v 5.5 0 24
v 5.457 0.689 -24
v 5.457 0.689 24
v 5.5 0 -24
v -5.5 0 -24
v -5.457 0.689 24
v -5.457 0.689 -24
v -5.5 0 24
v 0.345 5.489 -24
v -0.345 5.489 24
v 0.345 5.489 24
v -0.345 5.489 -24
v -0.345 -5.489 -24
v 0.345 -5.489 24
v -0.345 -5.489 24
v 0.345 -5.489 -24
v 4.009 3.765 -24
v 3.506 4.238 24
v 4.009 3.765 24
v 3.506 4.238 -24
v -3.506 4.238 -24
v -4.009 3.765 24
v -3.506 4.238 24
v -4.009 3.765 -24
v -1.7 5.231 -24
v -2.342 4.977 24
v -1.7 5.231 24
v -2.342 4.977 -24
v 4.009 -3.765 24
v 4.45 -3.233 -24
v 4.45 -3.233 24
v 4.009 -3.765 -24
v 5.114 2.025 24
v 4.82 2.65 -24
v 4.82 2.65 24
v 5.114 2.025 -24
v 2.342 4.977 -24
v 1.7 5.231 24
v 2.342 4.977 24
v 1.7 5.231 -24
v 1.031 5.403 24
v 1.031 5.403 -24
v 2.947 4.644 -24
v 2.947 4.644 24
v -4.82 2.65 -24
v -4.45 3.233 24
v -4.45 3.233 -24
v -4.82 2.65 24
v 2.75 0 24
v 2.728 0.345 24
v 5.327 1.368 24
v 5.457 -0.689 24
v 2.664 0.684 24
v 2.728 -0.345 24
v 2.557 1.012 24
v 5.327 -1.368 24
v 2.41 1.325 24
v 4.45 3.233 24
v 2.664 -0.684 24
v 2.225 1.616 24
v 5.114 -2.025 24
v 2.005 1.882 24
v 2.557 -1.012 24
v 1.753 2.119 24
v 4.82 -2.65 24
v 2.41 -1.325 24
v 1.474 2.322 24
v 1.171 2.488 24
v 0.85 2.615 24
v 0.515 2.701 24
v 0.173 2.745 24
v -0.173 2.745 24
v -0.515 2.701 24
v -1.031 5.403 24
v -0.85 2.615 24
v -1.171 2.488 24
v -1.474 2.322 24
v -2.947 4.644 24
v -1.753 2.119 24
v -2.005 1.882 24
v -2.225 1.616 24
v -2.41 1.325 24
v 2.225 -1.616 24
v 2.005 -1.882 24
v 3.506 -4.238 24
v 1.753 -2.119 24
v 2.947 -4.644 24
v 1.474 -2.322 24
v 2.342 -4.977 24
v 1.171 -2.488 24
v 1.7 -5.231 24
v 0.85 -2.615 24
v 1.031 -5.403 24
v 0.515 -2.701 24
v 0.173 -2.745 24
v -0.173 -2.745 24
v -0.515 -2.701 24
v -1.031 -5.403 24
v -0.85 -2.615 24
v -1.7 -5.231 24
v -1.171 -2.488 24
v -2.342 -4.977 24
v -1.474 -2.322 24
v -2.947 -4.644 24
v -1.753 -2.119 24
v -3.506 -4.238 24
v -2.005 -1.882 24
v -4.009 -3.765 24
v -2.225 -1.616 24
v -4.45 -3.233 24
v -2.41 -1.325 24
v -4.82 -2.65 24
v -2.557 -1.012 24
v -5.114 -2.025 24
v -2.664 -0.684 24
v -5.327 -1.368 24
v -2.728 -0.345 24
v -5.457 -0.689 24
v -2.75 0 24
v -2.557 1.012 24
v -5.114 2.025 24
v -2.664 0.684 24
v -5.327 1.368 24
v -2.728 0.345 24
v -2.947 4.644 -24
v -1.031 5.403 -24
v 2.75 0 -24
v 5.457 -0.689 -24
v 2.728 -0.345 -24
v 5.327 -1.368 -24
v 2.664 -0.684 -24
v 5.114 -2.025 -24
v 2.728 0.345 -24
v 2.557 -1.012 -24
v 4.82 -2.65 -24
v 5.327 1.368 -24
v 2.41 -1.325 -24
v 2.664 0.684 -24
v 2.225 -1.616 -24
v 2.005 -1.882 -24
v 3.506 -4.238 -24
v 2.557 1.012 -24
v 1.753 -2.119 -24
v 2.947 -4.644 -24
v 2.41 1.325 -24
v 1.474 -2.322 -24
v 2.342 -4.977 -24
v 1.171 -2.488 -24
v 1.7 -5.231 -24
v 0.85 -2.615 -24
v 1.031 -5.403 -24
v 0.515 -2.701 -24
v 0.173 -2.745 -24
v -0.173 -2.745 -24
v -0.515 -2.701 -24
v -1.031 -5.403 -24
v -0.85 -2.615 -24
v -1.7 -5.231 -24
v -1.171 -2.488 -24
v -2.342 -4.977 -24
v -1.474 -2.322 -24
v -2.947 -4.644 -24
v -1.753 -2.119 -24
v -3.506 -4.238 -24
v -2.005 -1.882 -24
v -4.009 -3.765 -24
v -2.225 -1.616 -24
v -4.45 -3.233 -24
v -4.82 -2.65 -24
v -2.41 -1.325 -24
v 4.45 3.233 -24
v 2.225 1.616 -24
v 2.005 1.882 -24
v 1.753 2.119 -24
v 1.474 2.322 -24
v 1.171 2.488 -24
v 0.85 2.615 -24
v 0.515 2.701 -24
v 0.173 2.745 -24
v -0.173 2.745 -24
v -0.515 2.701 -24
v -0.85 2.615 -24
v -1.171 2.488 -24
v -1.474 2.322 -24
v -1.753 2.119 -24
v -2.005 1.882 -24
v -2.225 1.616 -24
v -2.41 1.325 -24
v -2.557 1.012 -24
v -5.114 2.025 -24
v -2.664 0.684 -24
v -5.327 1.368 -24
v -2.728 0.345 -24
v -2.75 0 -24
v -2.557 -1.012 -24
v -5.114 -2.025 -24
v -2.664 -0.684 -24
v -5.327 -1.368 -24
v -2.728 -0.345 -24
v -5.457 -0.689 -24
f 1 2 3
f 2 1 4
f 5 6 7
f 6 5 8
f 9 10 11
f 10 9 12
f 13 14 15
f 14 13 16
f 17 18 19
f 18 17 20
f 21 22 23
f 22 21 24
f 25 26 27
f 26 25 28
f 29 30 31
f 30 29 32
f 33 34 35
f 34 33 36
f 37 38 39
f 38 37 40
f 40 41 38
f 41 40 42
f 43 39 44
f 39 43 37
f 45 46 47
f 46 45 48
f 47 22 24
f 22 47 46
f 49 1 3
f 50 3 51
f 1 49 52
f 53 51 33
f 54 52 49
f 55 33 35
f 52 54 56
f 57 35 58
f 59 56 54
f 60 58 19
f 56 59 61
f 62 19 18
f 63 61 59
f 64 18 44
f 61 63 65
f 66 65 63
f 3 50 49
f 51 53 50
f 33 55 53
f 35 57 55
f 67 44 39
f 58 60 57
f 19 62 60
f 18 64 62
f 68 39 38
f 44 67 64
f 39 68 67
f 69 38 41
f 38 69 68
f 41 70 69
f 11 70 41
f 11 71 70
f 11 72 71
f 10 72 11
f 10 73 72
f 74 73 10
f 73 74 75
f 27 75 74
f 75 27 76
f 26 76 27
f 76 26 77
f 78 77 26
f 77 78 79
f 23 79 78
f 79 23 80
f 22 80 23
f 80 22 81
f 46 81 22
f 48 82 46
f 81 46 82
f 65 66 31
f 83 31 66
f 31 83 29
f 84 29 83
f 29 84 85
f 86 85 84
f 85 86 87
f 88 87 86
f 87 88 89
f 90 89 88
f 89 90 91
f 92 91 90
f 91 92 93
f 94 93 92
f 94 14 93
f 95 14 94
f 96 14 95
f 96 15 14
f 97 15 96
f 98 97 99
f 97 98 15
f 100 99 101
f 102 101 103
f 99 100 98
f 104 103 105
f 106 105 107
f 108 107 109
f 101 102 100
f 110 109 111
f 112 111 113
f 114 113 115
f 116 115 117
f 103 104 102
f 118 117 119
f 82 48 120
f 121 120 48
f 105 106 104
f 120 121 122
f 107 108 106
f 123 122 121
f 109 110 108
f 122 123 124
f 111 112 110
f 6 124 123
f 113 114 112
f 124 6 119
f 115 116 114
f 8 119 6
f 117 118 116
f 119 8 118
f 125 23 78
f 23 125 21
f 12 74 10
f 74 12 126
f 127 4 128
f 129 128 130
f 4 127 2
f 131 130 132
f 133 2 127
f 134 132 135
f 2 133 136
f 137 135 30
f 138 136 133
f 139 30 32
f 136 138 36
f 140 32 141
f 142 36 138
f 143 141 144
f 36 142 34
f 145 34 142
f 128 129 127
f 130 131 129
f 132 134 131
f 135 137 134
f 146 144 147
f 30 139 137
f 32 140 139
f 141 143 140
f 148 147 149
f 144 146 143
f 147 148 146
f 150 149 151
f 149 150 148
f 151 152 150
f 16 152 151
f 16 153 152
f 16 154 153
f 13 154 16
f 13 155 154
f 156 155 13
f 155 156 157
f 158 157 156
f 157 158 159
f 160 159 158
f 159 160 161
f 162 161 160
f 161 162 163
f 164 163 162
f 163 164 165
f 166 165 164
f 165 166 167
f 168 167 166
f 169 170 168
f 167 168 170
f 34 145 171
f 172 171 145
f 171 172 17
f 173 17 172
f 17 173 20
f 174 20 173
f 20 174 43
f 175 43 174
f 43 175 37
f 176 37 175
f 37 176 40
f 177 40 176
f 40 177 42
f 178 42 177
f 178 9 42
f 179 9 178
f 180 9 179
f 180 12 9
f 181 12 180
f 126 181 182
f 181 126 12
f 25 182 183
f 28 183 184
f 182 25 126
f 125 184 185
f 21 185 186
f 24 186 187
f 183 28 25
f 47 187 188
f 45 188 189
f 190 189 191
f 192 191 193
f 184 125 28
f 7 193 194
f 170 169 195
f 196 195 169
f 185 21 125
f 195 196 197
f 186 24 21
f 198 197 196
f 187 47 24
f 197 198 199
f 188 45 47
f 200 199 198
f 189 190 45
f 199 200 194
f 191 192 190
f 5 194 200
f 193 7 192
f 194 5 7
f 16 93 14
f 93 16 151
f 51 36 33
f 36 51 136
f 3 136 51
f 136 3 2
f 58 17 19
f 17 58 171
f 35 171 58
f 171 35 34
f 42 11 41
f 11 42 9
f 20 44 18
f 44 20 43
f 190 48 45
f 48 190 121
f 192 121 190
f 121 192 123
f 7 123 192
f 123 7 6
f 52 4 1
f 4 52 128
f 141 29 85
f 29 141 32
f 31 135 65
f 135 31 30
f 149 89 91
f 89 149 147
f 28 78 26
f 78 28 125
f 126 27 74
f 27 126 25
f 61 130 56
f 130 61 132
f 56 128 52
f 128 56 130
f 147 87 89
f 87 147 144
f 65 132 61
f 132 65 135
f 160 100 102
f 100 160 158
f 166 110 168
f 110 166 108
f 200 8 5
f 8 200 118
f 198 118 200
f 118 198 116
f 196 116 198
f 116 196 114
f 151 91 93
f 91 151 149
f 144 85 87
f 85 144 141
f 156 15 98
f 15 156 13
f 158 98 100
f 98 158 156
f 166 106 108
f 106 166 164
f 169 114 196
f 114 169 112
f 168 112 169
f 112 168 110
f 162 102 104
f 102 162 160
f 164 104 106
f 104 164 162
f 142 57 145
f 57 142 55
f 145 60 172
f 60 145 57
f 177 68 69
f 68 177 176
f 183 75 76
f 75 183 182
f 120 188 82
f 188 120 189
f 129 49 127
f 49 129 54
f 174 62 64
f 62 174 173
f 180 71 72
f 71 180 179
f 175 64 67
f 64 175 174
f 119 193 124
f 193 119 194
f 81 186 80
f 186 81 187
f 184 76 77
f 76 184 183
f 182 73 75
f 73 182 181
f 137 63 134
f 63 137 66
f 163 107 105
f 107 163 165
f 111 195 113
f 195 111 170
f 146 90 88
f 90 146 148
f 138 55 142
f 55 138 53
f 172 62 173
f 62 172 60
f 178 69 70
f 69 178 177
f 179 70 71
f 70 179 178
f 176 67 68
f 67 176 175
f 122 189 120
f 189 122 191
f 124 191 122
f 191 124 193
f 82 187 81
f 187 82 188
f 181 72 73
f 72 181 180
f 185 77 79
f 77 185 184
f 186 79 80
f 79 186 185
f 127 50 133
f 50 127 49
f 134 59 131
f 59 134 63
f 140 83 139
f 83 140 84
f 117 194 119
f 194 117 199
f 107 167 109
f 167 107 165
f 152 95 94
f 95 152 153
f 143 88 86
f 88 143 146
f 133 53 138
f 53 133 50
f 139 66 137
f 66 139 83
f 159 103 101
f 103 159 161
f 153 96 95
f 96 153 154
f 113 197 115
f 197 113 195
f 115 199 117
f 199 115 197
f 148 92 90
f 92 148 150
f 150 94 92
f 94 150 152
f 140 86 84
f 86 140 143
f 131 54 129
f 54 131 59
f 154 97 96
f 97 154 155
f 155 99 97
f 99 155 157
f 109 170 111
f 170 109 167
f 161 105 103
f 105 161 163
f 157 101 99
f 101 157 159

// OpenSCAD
$fn = 50;


difference() {
	union() {
		translate(v = [0, 0, -24.0000000000]) {
			cylinder(h = 48, r = 5.5000000000);
		}
	}
	union() {
		translate(v = [0, 0, -100.0000000000]) {
			cylinder(h = 200, r = 2.7500000000);
		}
	}
}
